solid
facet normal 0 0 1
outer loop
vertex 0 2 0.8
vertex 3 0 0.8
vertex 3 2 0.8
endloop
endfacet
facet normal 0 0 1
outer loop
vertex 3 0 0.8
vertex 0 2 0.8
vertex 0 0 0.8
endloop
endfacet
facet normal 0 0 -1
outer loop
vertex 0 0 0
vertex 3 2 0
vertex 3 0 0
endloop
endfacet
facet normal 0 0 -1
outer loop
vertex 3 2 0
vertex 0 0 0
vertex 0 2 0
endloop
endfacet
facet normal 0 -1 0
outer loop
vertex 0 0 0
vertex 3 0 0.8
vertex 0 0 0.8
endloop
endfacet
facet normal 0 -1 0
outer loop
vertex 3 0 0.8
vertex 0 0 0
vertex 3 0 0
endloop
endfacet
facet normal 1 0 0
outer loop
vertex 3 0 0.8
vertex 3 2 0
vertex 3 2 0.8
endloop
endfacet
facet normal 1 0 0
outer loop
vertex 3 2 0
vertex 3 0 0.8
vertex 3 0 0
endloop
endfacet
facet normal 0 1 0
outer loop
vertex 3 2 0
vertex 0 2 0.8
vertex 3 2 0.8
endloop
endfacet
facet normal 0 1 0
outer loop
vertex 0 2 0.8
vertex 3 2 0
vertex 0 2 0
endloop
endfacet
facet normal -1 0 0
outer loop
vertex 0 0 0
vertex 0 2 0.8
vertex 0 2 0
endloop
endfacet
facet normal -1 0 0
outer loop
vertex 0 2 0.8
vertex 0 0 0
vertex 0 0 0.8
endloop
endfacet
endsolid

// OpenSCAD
/* Warning, this is a very basic generator with a lot of approximation 
input data : [WDFN, K5A, 3x2x0.8mm, 14, , A, C04-01065A]
generated by com.zoubworld.electronics.cad.model3d.Basic
Date : Sun Feb 15 10:50:49 CET 2026
*/

//body
color("black")
translate([0,0,0])
cube([3.0,2.0,0.8], center=false);
